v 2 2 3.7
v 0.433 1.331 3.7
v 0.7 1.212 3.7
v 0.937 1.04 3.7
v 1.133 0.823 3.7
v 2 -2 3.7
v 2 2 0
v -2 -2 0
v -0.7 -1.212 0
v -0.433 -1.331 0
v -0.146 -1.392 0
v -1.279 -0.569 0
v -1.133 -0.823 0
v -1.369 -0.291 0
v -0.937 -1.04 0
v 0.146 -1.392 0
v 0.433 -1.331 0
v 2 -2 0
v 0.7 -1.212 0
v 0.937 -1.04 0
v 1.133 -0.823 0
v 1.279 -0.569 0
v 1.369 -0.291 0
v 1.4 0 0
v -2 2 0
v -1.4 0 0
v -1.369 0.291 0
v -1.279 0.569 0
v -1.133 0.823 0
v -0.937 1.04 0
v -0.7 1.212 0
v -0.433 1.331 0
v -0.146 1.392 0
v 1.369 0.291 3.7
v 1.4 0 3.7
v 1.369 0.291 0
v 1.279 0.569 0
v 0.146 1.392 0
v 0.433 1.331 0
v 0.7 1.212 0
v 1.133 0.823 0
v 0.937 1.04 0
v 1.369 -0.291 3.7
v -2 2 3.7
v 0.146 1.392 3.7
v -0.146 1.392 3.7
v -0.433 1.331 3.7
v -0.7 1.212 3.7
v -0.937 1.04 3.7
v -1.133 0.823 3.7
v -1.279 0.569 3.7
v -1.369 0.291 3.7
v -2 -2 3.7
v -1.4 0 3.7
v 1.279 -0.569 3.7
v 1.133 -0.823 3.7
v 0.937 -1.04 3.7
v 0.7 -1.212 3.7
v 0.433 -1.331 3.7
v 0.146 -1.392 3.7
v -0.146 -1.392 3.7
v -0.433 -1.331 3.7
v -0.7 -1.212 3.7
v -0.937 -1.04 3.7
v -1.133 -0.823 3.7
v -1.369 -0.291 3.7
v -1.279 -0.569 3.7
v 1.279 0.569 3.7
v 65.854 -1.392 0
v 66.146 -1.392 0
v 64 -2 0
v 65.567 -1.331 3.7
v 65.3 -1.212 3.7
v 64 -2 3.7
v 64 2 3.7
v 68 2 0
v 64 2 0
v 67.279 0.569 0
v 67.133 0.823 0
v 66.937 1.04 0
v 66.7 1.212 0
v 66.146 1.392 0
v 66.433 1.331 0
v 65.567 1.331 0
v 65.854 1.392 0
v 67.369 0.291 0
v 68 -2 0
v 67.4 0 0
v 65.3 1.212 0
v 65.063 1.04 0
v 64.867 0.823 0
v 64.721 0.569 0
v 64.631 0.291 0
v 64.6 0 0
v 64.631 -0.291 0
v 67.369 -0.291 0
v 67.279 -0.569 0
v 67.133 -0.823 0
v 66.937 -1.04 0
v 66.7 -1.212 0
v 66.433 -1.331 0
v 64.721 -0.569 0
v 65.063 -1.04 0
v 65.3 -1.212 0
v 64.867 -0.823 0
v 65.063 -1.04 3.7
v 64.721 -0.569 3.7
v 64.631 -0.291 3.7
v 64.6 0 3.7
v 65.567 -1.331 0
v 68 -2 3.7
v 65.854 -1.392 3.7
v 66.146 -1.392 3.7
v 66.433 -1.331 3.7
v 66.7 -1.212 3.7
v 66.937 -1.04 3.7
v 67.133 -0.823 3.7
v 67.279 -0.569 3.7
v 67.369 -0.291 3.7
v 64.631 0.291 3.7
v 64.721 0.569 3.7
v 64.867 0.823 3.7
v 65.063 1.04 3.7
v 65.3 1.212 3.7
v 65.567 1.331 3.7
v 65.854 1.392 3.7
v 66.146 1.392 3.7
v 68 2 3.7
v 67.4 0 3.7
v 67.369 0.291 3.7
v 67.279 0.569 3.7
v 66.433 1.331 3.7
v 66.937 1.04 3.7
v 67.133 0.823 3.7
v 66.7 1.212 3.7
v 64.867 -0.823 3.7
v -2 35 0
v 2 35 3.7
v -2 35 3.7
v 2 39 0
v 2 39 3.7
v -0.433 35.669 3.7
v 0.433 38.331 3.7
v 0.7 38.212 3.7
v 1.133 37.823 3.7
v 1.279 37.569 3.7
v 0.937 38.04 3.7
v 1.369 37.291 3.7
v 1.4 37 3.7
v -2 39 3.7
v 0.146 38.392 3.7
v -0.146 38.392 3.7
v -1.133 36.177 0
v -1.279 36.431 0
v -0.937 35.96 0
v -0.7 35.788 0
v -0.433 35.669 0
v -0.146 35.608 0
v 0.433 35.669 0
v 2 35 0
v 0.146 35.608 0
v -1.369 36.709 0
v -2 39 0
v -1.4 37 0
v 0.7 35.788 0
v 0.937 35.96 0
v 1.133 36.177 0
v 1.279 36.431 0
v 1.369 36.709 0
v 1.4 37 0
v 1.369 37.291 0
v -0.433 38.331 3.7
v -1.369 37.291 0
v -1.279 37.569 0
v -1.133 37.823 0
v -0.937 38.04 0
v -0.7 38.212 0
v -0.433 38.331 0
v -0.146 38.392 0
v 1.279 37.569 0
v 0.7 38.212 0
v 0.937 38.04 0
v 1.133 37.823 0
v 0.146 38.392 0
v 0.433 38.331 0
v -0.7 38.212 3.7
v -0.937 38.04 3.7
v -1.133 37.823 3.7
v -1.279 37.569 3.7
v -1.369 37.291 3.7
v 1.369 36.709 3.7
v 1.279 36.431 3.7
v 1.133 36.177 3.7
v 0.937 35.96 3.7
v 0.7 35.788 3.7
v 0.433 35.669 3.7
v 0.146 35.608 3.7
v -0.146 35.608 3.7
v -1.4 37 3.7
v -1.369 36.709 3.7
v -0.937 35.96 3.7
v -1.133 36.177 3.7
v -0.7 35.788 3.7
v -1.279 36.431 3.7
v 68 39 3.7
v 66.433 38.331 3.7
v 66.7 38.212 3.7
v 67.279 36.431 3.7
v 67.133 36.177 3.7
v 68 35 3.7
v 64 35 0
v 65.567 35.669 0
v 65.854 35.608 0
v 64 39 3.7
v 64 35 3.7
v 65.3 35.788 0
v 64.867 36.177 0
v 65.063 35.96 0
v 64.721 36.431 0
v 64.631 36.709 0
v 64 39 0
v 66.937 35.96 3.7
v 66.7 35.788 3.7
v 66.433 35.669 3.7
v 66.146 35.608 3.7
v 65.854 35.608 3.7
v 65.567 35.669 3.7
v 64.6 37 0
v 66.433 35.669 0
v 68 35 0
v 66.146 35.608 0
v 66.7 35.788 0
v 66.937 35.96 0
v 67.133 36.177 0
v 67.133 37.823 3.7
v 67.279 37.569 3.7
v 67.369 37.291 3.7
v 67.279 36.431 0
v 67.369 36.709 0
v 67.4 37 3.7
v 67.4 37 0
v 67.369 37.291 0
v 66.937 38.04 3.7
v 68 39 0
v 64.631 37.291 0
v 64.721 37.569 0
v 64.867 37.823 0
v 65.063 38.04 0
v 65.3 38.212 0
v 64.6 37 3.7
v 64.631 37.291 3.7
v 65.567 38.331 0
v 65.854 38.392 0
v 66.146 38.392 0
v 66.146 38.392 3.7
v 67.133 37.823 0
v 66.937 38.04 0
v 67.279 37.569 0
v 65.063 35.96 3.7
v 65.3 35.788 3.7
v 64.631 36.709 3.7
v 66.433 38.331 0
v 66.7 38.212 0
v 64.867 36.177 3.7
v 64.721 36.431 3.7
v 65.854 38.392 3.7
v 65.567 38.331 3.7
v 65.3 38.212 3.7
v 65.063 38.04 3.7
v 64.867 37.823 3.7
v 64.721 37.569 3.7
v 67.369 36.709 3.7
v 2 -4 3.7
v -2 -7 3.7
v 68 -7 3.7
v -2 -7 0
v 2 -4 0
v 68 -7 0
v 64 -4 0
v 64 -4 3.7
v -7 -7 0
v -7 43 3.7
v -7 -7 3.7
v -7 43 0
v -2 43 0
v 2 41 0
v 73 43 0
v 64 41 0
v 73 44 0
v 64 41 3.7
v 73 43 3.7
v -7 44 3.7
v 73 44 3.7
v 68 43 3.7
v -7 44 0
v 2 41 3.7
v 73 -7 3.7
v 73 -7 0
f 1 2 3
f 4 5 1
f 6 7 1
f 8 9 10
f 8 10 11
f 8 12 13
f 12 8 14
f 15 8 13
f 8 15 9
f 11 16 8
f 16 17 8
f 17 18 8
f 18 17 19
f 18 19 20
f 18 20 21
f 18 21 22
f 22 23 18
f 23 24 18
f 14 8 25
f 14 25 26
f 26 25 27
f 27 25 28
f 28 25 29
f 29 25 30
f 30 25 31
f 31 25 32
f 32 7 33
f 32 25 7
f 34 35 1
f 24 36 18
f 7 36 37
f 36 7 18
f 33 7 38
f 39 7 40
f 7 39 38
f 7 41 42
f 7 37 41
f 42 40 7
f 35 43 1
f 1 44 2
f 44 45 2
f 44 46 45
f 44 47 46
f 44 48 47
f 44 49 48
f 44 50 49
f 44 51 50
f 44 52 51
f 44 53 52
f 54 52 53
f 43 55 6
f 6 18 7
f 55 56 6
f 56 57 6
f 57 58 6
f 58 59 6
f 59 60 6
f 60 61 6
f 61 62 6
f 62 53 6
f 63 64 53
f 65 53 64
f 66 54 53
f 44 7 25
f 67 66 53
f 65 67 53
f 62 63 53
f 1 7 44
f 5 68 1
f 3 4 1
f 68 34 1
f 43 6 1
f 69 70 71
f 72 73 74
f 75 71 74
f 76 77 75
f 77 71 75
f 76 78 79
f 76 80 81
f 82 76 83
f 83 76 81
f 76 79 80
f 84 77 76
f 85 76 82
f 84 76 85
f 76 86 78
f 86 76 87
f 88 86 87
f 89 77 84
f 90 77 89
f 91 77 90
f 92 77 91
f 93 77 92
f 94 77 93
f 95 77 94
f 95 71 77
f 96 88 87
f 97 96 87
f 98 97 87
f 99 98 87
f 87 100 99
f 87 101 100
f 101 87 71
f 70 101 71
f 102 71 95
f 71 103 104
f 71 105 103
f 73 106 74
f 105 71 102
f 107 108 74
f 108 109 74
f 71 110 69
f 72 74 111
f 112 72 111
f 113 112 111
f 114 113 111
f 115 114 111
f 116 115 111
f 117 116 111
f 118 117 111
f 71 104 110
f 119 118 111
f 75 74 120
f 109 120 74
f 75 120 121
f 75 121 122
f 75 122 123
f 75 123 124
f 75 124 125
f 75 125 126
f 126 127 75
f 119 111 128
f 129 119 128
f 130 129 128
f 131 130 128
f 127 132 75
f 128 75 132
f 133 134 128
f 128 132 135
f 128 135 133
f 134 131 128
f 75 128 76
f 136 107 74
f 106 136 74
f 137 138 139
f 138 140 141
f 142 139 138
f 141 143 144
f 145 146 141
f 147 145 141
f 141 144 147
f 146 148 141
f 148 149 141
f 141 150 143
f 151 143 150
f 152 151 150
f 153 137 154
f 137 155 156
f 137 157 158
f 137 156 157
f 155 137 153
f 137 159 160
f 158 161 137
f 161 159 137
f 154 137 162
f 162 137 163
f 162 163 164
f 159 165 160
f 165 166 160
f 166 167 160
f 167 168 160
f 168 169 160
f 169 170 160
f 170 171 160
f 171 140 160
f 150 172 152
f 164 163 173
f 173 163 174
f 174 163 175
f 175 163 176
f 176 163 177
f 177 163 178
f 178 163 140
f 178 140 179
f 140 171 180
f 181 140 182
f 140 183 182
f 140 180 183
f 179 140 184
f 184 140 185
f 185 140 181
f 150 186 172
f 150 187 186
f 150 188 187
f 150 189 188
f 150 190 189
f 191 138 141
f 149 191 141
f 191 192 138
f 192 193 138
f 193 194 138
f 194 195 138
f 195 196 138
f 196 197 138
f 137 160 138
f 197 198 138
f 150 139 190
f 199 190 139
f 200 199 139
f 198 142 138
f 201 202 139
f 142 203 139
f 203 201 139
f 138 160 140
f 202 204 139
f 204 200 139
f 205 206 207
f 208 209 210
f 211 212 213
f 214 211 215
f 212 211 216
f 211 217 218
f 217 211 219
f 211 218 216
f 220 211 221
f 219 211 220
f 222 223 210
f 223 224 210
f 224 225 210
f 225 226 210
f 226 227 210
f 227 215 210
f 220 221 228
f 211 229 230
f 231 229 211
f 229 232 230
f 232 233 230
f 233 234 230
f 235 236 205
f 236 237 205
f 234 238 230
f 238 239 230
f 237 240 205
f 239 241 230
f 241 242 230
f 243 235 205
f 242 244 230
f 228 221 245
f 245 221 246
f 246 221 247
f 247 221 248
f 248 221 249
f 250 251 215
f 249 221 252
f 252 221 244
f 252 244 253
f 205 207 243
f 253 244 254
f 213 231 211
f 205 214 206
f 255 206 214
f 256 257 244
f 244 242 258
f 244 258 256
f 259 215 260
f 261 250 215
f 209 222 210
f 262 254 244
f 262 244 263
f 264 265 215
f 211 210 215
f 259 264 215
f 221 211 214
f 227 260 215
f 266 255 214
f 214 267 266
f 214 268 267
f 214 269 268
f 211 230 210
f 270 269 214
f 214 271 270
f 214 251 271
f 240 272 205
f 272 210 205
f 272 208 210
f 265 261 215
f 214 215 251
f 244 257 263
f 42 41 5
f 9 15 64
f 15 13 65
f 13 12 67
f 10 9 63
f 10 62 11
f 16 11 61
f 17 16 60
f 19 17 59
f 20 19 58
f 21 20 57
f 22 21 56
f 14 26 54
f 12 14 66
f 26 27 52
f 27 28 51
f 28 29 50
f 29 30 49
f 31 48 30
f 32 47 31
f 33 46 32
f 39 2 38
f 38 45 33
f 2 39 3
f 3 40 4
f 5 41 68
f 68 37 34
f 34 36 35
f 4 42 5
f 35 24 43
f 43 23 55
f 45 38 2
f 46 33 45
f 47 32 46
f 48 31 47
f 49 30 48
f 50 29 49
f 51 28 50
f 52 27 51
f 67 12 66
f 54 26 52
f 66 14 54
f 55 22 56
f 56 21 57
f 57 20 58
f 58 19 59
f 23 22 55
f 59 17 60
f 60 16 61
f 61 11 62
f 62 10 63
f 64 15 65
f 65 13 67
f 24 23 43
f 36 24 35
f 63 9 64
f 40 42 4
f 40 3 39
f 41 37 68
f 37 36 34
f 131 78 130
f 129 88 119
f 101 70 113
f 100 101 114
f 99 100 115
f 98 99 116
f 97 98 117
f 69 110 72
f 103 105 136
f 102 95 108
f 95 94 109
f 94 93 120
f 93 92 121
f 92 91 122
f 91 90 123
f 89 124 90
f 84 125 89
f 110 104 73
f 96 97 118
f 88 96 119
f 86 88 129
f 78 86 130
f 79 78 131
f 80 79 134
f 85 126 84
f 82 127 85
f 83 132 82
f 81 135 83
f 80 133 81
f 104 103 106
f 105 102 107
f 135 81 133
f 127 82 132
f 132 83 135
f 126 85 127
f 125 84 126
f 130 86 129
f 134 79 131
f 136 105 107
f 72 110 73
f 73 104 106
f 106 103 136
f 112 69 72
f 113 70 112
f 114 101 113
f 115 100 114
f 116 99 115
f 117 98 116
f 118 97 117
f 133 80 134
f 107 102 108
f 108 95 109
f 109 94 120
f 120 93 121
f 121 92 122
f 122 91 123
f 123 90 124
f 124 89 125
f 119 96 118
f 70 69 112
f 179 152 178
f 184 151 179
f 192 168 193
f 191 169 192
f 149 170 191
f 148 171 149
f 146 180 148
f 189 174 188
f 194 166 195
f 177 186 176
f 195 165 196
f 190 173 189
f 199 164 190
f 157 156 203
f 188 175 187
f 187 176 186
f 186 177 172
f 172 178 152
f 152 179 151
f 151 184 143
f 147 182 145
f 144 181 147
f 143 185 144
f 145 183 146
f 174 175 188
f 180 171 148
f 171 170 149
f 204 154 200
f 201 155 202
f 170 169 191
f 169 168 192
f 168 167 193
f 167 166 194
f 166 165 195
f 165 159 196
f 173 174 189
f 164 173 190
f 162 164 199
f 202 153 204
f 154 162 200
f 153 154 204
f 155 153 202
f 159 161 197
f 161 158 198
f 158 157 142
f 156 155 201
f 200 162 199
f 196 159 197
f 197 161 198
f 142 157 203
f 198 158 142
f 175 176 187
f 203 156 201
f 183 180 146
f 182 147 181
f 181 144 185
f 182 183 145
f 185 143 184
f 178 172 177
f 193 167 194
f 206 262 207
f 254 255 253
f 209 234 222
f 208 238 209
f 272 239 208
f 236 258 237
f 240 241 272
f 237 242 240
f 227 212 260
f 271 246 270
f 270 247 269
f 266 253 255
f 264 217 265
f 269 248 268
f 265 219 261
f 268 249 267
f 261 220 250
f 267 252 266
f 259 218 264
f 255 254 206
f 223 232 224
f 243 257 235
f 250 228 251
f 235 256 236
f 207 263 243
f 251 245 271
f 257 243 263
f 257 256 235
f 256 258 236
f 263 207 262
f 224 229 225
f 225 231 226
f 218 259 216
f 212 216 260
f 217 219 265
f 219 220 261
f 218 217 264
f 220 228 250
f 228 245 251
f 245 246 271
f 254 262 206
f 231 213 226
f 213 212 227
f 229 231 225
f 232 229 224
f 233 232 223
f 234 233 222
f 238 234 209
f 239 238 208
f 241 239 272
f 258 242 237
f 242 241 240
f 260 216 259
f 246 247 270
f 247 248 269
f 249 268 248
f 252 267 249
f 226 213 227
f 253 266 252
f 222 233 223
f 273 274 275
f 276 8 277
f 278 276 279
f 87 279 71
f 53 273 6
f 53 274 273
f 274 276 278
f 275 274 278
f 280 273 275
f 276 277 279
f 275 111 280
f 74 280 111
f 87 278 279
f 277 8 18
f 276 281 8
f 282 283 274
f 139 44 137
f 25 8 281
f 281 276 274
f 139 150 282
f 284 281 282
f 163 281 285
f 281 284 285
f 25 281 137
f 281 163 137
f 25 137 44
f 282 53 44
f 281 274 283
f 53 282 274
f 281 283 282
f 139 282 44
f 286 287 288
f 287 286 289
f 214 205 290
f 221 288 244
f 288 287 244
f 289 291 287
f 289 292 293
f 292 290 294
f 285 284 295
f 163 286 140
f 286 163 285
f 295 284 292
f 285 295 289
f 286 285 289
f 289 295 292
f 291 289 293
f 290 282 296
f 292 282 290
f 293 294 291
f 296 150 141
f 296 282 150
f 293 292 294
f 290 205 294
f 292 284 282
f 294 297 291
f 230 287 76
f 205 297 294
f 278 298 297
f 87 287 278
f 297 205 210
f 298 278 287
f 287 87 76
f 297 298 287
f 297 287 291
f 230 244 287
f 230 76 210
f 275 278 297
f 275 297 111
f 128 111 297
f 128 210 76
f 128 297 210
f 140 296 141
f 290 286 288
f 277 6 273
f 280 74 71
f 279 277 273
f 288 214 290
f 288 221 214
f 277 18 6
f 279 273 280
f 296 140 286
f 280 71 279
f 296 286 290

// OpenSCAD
wall_thickness = 3.7;


// All holes/openings should be offset from hole 1, at 0,0, which is the lower left hole
lcd_hole_1_x = 0;
lcd_hole_1_y = 0;

// Lower right hole
lcd_hole_2_x = 66; // Per lolin's spec
lcd_hole_2_y = lcd_hole_1_y;

// Upper left hole
lcd_hole_3_x = lcd_hole_1_x;
lcd_hole_3_y = 37; // Per lolin's spec

// Upper right hole
lcd_hole_4_x = lcd_hole_2_x;
lcd_hole_4_y = lcd_hole_3_y;

// Screw hole radius for the LCD
lcd_hole_radius = 1.4;

// Opening X and Y are offset from lcd_hole_1
lcd_opening_x = 2.6;
lcd_opening_y = -3;

// This is the actual width/length of the hole
lcd_opening_x_length = 60.8;
lcd_opening_y_length = 42;




module lcd_holes() {
    translate([lcd_hole_1_x, lcd_hole_1_y, 0]) cylinder(h=wall_thickness*3, r=lcd_hole_radius, center=true, $fn=30);
    translate([lcd_hole_2_x, lcd_hole_2_y, 0]) cylinder(h=wall_thickness*3, r=lcd_hole_radius, center=true, $fn=30);
    translate([lcd_hole_3_x, lcd_hole_3_y, 0]) cylinder(h=wall_thickness*3, r=lcd_hole_radius, center=true, $fn=30);
    translate([lcd_hole_4_x, lcd_hole_4_y, 0]) cylinder(h=wall_thickness*3, r=lcd_hole_radius, center=true, $fn=30);
    translate([lcd_opening_x, lcd_opening_y, -1]) cube([lcd_opening_x_length, lcd_opening_y_length, wall_thickness*3]);
}

lcd_plate_size = 4.0; // 3.8

module lcd_plate(lcd_x, lcd_y) {
    translate([-lcd_plate_size/2, -lcd_plate_size/2, 0]) translate([lcd_x, lcd_y, 0]) cube([lcd_plate_size, lcd_plate_size, wall_thickness]);
}

module make_lcd_plates() {
    lcd_plate(lcd_hole_1_x, lcd_hole_1_y);
    lcd_plate(lcd_hole_2_x, lcd_hole_2_y);
    lcd_plate(lcd_hole_3_x, lcd_hole_3_y);
    lcd_plate(lcd_hole_4_x, lcd_hole_4_y);
}


frame_width = 5;

difference() {
    make_lcd_plates();
    lcd_holes();
}

extra_vertical_padding=3.0;


module make_frame() {
    translate([-lcd_plate_size/2-frame_width, -lcd_plate_size/2-frame_width, 0]) cube([lcd_hole_4_x+lcd_plate_size+(frame_width*2),frame_width,wall_thickness]);

    translate([-lcd_plate_size/2-frame_width,-lcd_plate_size/2-frame_width,0]) cube([frame_width, lcd_hole_3_y+frame_width+lcd_plate_size*2, wall_thickness]);

    translate([-lcd_plate_size/2-frame_width, -lcd_plate_size/2-frame_width+lcd_hole_3_y+frame_width+lcd_plate_size, 0]) cube([lcd_hole_4_x+lcd_plate_size+(frame_width*2),frame_width,wall_thickness]);


    translate([-lcd_plate_size/2-frame_width+lcd_hole_4_x+frame_width+lcd_plate_size,-lcd_plate_size/2-frame_width,0]) cube([frame_width, lcd_hole_3_y+frame_width+lcd_plate_size*2, wall_thickness]);

}

difference() {
// These are the frame
make_frame();
translate([lcd_plate_size/2, -lcd_plate_size/2+lcd_opening_y+1,-0.01]) cube([lcd_hole_2_x-lcd_plate_size,lcd_opening_y_length+extra_vertical_padding,wall_thickness+0.2]);
}
